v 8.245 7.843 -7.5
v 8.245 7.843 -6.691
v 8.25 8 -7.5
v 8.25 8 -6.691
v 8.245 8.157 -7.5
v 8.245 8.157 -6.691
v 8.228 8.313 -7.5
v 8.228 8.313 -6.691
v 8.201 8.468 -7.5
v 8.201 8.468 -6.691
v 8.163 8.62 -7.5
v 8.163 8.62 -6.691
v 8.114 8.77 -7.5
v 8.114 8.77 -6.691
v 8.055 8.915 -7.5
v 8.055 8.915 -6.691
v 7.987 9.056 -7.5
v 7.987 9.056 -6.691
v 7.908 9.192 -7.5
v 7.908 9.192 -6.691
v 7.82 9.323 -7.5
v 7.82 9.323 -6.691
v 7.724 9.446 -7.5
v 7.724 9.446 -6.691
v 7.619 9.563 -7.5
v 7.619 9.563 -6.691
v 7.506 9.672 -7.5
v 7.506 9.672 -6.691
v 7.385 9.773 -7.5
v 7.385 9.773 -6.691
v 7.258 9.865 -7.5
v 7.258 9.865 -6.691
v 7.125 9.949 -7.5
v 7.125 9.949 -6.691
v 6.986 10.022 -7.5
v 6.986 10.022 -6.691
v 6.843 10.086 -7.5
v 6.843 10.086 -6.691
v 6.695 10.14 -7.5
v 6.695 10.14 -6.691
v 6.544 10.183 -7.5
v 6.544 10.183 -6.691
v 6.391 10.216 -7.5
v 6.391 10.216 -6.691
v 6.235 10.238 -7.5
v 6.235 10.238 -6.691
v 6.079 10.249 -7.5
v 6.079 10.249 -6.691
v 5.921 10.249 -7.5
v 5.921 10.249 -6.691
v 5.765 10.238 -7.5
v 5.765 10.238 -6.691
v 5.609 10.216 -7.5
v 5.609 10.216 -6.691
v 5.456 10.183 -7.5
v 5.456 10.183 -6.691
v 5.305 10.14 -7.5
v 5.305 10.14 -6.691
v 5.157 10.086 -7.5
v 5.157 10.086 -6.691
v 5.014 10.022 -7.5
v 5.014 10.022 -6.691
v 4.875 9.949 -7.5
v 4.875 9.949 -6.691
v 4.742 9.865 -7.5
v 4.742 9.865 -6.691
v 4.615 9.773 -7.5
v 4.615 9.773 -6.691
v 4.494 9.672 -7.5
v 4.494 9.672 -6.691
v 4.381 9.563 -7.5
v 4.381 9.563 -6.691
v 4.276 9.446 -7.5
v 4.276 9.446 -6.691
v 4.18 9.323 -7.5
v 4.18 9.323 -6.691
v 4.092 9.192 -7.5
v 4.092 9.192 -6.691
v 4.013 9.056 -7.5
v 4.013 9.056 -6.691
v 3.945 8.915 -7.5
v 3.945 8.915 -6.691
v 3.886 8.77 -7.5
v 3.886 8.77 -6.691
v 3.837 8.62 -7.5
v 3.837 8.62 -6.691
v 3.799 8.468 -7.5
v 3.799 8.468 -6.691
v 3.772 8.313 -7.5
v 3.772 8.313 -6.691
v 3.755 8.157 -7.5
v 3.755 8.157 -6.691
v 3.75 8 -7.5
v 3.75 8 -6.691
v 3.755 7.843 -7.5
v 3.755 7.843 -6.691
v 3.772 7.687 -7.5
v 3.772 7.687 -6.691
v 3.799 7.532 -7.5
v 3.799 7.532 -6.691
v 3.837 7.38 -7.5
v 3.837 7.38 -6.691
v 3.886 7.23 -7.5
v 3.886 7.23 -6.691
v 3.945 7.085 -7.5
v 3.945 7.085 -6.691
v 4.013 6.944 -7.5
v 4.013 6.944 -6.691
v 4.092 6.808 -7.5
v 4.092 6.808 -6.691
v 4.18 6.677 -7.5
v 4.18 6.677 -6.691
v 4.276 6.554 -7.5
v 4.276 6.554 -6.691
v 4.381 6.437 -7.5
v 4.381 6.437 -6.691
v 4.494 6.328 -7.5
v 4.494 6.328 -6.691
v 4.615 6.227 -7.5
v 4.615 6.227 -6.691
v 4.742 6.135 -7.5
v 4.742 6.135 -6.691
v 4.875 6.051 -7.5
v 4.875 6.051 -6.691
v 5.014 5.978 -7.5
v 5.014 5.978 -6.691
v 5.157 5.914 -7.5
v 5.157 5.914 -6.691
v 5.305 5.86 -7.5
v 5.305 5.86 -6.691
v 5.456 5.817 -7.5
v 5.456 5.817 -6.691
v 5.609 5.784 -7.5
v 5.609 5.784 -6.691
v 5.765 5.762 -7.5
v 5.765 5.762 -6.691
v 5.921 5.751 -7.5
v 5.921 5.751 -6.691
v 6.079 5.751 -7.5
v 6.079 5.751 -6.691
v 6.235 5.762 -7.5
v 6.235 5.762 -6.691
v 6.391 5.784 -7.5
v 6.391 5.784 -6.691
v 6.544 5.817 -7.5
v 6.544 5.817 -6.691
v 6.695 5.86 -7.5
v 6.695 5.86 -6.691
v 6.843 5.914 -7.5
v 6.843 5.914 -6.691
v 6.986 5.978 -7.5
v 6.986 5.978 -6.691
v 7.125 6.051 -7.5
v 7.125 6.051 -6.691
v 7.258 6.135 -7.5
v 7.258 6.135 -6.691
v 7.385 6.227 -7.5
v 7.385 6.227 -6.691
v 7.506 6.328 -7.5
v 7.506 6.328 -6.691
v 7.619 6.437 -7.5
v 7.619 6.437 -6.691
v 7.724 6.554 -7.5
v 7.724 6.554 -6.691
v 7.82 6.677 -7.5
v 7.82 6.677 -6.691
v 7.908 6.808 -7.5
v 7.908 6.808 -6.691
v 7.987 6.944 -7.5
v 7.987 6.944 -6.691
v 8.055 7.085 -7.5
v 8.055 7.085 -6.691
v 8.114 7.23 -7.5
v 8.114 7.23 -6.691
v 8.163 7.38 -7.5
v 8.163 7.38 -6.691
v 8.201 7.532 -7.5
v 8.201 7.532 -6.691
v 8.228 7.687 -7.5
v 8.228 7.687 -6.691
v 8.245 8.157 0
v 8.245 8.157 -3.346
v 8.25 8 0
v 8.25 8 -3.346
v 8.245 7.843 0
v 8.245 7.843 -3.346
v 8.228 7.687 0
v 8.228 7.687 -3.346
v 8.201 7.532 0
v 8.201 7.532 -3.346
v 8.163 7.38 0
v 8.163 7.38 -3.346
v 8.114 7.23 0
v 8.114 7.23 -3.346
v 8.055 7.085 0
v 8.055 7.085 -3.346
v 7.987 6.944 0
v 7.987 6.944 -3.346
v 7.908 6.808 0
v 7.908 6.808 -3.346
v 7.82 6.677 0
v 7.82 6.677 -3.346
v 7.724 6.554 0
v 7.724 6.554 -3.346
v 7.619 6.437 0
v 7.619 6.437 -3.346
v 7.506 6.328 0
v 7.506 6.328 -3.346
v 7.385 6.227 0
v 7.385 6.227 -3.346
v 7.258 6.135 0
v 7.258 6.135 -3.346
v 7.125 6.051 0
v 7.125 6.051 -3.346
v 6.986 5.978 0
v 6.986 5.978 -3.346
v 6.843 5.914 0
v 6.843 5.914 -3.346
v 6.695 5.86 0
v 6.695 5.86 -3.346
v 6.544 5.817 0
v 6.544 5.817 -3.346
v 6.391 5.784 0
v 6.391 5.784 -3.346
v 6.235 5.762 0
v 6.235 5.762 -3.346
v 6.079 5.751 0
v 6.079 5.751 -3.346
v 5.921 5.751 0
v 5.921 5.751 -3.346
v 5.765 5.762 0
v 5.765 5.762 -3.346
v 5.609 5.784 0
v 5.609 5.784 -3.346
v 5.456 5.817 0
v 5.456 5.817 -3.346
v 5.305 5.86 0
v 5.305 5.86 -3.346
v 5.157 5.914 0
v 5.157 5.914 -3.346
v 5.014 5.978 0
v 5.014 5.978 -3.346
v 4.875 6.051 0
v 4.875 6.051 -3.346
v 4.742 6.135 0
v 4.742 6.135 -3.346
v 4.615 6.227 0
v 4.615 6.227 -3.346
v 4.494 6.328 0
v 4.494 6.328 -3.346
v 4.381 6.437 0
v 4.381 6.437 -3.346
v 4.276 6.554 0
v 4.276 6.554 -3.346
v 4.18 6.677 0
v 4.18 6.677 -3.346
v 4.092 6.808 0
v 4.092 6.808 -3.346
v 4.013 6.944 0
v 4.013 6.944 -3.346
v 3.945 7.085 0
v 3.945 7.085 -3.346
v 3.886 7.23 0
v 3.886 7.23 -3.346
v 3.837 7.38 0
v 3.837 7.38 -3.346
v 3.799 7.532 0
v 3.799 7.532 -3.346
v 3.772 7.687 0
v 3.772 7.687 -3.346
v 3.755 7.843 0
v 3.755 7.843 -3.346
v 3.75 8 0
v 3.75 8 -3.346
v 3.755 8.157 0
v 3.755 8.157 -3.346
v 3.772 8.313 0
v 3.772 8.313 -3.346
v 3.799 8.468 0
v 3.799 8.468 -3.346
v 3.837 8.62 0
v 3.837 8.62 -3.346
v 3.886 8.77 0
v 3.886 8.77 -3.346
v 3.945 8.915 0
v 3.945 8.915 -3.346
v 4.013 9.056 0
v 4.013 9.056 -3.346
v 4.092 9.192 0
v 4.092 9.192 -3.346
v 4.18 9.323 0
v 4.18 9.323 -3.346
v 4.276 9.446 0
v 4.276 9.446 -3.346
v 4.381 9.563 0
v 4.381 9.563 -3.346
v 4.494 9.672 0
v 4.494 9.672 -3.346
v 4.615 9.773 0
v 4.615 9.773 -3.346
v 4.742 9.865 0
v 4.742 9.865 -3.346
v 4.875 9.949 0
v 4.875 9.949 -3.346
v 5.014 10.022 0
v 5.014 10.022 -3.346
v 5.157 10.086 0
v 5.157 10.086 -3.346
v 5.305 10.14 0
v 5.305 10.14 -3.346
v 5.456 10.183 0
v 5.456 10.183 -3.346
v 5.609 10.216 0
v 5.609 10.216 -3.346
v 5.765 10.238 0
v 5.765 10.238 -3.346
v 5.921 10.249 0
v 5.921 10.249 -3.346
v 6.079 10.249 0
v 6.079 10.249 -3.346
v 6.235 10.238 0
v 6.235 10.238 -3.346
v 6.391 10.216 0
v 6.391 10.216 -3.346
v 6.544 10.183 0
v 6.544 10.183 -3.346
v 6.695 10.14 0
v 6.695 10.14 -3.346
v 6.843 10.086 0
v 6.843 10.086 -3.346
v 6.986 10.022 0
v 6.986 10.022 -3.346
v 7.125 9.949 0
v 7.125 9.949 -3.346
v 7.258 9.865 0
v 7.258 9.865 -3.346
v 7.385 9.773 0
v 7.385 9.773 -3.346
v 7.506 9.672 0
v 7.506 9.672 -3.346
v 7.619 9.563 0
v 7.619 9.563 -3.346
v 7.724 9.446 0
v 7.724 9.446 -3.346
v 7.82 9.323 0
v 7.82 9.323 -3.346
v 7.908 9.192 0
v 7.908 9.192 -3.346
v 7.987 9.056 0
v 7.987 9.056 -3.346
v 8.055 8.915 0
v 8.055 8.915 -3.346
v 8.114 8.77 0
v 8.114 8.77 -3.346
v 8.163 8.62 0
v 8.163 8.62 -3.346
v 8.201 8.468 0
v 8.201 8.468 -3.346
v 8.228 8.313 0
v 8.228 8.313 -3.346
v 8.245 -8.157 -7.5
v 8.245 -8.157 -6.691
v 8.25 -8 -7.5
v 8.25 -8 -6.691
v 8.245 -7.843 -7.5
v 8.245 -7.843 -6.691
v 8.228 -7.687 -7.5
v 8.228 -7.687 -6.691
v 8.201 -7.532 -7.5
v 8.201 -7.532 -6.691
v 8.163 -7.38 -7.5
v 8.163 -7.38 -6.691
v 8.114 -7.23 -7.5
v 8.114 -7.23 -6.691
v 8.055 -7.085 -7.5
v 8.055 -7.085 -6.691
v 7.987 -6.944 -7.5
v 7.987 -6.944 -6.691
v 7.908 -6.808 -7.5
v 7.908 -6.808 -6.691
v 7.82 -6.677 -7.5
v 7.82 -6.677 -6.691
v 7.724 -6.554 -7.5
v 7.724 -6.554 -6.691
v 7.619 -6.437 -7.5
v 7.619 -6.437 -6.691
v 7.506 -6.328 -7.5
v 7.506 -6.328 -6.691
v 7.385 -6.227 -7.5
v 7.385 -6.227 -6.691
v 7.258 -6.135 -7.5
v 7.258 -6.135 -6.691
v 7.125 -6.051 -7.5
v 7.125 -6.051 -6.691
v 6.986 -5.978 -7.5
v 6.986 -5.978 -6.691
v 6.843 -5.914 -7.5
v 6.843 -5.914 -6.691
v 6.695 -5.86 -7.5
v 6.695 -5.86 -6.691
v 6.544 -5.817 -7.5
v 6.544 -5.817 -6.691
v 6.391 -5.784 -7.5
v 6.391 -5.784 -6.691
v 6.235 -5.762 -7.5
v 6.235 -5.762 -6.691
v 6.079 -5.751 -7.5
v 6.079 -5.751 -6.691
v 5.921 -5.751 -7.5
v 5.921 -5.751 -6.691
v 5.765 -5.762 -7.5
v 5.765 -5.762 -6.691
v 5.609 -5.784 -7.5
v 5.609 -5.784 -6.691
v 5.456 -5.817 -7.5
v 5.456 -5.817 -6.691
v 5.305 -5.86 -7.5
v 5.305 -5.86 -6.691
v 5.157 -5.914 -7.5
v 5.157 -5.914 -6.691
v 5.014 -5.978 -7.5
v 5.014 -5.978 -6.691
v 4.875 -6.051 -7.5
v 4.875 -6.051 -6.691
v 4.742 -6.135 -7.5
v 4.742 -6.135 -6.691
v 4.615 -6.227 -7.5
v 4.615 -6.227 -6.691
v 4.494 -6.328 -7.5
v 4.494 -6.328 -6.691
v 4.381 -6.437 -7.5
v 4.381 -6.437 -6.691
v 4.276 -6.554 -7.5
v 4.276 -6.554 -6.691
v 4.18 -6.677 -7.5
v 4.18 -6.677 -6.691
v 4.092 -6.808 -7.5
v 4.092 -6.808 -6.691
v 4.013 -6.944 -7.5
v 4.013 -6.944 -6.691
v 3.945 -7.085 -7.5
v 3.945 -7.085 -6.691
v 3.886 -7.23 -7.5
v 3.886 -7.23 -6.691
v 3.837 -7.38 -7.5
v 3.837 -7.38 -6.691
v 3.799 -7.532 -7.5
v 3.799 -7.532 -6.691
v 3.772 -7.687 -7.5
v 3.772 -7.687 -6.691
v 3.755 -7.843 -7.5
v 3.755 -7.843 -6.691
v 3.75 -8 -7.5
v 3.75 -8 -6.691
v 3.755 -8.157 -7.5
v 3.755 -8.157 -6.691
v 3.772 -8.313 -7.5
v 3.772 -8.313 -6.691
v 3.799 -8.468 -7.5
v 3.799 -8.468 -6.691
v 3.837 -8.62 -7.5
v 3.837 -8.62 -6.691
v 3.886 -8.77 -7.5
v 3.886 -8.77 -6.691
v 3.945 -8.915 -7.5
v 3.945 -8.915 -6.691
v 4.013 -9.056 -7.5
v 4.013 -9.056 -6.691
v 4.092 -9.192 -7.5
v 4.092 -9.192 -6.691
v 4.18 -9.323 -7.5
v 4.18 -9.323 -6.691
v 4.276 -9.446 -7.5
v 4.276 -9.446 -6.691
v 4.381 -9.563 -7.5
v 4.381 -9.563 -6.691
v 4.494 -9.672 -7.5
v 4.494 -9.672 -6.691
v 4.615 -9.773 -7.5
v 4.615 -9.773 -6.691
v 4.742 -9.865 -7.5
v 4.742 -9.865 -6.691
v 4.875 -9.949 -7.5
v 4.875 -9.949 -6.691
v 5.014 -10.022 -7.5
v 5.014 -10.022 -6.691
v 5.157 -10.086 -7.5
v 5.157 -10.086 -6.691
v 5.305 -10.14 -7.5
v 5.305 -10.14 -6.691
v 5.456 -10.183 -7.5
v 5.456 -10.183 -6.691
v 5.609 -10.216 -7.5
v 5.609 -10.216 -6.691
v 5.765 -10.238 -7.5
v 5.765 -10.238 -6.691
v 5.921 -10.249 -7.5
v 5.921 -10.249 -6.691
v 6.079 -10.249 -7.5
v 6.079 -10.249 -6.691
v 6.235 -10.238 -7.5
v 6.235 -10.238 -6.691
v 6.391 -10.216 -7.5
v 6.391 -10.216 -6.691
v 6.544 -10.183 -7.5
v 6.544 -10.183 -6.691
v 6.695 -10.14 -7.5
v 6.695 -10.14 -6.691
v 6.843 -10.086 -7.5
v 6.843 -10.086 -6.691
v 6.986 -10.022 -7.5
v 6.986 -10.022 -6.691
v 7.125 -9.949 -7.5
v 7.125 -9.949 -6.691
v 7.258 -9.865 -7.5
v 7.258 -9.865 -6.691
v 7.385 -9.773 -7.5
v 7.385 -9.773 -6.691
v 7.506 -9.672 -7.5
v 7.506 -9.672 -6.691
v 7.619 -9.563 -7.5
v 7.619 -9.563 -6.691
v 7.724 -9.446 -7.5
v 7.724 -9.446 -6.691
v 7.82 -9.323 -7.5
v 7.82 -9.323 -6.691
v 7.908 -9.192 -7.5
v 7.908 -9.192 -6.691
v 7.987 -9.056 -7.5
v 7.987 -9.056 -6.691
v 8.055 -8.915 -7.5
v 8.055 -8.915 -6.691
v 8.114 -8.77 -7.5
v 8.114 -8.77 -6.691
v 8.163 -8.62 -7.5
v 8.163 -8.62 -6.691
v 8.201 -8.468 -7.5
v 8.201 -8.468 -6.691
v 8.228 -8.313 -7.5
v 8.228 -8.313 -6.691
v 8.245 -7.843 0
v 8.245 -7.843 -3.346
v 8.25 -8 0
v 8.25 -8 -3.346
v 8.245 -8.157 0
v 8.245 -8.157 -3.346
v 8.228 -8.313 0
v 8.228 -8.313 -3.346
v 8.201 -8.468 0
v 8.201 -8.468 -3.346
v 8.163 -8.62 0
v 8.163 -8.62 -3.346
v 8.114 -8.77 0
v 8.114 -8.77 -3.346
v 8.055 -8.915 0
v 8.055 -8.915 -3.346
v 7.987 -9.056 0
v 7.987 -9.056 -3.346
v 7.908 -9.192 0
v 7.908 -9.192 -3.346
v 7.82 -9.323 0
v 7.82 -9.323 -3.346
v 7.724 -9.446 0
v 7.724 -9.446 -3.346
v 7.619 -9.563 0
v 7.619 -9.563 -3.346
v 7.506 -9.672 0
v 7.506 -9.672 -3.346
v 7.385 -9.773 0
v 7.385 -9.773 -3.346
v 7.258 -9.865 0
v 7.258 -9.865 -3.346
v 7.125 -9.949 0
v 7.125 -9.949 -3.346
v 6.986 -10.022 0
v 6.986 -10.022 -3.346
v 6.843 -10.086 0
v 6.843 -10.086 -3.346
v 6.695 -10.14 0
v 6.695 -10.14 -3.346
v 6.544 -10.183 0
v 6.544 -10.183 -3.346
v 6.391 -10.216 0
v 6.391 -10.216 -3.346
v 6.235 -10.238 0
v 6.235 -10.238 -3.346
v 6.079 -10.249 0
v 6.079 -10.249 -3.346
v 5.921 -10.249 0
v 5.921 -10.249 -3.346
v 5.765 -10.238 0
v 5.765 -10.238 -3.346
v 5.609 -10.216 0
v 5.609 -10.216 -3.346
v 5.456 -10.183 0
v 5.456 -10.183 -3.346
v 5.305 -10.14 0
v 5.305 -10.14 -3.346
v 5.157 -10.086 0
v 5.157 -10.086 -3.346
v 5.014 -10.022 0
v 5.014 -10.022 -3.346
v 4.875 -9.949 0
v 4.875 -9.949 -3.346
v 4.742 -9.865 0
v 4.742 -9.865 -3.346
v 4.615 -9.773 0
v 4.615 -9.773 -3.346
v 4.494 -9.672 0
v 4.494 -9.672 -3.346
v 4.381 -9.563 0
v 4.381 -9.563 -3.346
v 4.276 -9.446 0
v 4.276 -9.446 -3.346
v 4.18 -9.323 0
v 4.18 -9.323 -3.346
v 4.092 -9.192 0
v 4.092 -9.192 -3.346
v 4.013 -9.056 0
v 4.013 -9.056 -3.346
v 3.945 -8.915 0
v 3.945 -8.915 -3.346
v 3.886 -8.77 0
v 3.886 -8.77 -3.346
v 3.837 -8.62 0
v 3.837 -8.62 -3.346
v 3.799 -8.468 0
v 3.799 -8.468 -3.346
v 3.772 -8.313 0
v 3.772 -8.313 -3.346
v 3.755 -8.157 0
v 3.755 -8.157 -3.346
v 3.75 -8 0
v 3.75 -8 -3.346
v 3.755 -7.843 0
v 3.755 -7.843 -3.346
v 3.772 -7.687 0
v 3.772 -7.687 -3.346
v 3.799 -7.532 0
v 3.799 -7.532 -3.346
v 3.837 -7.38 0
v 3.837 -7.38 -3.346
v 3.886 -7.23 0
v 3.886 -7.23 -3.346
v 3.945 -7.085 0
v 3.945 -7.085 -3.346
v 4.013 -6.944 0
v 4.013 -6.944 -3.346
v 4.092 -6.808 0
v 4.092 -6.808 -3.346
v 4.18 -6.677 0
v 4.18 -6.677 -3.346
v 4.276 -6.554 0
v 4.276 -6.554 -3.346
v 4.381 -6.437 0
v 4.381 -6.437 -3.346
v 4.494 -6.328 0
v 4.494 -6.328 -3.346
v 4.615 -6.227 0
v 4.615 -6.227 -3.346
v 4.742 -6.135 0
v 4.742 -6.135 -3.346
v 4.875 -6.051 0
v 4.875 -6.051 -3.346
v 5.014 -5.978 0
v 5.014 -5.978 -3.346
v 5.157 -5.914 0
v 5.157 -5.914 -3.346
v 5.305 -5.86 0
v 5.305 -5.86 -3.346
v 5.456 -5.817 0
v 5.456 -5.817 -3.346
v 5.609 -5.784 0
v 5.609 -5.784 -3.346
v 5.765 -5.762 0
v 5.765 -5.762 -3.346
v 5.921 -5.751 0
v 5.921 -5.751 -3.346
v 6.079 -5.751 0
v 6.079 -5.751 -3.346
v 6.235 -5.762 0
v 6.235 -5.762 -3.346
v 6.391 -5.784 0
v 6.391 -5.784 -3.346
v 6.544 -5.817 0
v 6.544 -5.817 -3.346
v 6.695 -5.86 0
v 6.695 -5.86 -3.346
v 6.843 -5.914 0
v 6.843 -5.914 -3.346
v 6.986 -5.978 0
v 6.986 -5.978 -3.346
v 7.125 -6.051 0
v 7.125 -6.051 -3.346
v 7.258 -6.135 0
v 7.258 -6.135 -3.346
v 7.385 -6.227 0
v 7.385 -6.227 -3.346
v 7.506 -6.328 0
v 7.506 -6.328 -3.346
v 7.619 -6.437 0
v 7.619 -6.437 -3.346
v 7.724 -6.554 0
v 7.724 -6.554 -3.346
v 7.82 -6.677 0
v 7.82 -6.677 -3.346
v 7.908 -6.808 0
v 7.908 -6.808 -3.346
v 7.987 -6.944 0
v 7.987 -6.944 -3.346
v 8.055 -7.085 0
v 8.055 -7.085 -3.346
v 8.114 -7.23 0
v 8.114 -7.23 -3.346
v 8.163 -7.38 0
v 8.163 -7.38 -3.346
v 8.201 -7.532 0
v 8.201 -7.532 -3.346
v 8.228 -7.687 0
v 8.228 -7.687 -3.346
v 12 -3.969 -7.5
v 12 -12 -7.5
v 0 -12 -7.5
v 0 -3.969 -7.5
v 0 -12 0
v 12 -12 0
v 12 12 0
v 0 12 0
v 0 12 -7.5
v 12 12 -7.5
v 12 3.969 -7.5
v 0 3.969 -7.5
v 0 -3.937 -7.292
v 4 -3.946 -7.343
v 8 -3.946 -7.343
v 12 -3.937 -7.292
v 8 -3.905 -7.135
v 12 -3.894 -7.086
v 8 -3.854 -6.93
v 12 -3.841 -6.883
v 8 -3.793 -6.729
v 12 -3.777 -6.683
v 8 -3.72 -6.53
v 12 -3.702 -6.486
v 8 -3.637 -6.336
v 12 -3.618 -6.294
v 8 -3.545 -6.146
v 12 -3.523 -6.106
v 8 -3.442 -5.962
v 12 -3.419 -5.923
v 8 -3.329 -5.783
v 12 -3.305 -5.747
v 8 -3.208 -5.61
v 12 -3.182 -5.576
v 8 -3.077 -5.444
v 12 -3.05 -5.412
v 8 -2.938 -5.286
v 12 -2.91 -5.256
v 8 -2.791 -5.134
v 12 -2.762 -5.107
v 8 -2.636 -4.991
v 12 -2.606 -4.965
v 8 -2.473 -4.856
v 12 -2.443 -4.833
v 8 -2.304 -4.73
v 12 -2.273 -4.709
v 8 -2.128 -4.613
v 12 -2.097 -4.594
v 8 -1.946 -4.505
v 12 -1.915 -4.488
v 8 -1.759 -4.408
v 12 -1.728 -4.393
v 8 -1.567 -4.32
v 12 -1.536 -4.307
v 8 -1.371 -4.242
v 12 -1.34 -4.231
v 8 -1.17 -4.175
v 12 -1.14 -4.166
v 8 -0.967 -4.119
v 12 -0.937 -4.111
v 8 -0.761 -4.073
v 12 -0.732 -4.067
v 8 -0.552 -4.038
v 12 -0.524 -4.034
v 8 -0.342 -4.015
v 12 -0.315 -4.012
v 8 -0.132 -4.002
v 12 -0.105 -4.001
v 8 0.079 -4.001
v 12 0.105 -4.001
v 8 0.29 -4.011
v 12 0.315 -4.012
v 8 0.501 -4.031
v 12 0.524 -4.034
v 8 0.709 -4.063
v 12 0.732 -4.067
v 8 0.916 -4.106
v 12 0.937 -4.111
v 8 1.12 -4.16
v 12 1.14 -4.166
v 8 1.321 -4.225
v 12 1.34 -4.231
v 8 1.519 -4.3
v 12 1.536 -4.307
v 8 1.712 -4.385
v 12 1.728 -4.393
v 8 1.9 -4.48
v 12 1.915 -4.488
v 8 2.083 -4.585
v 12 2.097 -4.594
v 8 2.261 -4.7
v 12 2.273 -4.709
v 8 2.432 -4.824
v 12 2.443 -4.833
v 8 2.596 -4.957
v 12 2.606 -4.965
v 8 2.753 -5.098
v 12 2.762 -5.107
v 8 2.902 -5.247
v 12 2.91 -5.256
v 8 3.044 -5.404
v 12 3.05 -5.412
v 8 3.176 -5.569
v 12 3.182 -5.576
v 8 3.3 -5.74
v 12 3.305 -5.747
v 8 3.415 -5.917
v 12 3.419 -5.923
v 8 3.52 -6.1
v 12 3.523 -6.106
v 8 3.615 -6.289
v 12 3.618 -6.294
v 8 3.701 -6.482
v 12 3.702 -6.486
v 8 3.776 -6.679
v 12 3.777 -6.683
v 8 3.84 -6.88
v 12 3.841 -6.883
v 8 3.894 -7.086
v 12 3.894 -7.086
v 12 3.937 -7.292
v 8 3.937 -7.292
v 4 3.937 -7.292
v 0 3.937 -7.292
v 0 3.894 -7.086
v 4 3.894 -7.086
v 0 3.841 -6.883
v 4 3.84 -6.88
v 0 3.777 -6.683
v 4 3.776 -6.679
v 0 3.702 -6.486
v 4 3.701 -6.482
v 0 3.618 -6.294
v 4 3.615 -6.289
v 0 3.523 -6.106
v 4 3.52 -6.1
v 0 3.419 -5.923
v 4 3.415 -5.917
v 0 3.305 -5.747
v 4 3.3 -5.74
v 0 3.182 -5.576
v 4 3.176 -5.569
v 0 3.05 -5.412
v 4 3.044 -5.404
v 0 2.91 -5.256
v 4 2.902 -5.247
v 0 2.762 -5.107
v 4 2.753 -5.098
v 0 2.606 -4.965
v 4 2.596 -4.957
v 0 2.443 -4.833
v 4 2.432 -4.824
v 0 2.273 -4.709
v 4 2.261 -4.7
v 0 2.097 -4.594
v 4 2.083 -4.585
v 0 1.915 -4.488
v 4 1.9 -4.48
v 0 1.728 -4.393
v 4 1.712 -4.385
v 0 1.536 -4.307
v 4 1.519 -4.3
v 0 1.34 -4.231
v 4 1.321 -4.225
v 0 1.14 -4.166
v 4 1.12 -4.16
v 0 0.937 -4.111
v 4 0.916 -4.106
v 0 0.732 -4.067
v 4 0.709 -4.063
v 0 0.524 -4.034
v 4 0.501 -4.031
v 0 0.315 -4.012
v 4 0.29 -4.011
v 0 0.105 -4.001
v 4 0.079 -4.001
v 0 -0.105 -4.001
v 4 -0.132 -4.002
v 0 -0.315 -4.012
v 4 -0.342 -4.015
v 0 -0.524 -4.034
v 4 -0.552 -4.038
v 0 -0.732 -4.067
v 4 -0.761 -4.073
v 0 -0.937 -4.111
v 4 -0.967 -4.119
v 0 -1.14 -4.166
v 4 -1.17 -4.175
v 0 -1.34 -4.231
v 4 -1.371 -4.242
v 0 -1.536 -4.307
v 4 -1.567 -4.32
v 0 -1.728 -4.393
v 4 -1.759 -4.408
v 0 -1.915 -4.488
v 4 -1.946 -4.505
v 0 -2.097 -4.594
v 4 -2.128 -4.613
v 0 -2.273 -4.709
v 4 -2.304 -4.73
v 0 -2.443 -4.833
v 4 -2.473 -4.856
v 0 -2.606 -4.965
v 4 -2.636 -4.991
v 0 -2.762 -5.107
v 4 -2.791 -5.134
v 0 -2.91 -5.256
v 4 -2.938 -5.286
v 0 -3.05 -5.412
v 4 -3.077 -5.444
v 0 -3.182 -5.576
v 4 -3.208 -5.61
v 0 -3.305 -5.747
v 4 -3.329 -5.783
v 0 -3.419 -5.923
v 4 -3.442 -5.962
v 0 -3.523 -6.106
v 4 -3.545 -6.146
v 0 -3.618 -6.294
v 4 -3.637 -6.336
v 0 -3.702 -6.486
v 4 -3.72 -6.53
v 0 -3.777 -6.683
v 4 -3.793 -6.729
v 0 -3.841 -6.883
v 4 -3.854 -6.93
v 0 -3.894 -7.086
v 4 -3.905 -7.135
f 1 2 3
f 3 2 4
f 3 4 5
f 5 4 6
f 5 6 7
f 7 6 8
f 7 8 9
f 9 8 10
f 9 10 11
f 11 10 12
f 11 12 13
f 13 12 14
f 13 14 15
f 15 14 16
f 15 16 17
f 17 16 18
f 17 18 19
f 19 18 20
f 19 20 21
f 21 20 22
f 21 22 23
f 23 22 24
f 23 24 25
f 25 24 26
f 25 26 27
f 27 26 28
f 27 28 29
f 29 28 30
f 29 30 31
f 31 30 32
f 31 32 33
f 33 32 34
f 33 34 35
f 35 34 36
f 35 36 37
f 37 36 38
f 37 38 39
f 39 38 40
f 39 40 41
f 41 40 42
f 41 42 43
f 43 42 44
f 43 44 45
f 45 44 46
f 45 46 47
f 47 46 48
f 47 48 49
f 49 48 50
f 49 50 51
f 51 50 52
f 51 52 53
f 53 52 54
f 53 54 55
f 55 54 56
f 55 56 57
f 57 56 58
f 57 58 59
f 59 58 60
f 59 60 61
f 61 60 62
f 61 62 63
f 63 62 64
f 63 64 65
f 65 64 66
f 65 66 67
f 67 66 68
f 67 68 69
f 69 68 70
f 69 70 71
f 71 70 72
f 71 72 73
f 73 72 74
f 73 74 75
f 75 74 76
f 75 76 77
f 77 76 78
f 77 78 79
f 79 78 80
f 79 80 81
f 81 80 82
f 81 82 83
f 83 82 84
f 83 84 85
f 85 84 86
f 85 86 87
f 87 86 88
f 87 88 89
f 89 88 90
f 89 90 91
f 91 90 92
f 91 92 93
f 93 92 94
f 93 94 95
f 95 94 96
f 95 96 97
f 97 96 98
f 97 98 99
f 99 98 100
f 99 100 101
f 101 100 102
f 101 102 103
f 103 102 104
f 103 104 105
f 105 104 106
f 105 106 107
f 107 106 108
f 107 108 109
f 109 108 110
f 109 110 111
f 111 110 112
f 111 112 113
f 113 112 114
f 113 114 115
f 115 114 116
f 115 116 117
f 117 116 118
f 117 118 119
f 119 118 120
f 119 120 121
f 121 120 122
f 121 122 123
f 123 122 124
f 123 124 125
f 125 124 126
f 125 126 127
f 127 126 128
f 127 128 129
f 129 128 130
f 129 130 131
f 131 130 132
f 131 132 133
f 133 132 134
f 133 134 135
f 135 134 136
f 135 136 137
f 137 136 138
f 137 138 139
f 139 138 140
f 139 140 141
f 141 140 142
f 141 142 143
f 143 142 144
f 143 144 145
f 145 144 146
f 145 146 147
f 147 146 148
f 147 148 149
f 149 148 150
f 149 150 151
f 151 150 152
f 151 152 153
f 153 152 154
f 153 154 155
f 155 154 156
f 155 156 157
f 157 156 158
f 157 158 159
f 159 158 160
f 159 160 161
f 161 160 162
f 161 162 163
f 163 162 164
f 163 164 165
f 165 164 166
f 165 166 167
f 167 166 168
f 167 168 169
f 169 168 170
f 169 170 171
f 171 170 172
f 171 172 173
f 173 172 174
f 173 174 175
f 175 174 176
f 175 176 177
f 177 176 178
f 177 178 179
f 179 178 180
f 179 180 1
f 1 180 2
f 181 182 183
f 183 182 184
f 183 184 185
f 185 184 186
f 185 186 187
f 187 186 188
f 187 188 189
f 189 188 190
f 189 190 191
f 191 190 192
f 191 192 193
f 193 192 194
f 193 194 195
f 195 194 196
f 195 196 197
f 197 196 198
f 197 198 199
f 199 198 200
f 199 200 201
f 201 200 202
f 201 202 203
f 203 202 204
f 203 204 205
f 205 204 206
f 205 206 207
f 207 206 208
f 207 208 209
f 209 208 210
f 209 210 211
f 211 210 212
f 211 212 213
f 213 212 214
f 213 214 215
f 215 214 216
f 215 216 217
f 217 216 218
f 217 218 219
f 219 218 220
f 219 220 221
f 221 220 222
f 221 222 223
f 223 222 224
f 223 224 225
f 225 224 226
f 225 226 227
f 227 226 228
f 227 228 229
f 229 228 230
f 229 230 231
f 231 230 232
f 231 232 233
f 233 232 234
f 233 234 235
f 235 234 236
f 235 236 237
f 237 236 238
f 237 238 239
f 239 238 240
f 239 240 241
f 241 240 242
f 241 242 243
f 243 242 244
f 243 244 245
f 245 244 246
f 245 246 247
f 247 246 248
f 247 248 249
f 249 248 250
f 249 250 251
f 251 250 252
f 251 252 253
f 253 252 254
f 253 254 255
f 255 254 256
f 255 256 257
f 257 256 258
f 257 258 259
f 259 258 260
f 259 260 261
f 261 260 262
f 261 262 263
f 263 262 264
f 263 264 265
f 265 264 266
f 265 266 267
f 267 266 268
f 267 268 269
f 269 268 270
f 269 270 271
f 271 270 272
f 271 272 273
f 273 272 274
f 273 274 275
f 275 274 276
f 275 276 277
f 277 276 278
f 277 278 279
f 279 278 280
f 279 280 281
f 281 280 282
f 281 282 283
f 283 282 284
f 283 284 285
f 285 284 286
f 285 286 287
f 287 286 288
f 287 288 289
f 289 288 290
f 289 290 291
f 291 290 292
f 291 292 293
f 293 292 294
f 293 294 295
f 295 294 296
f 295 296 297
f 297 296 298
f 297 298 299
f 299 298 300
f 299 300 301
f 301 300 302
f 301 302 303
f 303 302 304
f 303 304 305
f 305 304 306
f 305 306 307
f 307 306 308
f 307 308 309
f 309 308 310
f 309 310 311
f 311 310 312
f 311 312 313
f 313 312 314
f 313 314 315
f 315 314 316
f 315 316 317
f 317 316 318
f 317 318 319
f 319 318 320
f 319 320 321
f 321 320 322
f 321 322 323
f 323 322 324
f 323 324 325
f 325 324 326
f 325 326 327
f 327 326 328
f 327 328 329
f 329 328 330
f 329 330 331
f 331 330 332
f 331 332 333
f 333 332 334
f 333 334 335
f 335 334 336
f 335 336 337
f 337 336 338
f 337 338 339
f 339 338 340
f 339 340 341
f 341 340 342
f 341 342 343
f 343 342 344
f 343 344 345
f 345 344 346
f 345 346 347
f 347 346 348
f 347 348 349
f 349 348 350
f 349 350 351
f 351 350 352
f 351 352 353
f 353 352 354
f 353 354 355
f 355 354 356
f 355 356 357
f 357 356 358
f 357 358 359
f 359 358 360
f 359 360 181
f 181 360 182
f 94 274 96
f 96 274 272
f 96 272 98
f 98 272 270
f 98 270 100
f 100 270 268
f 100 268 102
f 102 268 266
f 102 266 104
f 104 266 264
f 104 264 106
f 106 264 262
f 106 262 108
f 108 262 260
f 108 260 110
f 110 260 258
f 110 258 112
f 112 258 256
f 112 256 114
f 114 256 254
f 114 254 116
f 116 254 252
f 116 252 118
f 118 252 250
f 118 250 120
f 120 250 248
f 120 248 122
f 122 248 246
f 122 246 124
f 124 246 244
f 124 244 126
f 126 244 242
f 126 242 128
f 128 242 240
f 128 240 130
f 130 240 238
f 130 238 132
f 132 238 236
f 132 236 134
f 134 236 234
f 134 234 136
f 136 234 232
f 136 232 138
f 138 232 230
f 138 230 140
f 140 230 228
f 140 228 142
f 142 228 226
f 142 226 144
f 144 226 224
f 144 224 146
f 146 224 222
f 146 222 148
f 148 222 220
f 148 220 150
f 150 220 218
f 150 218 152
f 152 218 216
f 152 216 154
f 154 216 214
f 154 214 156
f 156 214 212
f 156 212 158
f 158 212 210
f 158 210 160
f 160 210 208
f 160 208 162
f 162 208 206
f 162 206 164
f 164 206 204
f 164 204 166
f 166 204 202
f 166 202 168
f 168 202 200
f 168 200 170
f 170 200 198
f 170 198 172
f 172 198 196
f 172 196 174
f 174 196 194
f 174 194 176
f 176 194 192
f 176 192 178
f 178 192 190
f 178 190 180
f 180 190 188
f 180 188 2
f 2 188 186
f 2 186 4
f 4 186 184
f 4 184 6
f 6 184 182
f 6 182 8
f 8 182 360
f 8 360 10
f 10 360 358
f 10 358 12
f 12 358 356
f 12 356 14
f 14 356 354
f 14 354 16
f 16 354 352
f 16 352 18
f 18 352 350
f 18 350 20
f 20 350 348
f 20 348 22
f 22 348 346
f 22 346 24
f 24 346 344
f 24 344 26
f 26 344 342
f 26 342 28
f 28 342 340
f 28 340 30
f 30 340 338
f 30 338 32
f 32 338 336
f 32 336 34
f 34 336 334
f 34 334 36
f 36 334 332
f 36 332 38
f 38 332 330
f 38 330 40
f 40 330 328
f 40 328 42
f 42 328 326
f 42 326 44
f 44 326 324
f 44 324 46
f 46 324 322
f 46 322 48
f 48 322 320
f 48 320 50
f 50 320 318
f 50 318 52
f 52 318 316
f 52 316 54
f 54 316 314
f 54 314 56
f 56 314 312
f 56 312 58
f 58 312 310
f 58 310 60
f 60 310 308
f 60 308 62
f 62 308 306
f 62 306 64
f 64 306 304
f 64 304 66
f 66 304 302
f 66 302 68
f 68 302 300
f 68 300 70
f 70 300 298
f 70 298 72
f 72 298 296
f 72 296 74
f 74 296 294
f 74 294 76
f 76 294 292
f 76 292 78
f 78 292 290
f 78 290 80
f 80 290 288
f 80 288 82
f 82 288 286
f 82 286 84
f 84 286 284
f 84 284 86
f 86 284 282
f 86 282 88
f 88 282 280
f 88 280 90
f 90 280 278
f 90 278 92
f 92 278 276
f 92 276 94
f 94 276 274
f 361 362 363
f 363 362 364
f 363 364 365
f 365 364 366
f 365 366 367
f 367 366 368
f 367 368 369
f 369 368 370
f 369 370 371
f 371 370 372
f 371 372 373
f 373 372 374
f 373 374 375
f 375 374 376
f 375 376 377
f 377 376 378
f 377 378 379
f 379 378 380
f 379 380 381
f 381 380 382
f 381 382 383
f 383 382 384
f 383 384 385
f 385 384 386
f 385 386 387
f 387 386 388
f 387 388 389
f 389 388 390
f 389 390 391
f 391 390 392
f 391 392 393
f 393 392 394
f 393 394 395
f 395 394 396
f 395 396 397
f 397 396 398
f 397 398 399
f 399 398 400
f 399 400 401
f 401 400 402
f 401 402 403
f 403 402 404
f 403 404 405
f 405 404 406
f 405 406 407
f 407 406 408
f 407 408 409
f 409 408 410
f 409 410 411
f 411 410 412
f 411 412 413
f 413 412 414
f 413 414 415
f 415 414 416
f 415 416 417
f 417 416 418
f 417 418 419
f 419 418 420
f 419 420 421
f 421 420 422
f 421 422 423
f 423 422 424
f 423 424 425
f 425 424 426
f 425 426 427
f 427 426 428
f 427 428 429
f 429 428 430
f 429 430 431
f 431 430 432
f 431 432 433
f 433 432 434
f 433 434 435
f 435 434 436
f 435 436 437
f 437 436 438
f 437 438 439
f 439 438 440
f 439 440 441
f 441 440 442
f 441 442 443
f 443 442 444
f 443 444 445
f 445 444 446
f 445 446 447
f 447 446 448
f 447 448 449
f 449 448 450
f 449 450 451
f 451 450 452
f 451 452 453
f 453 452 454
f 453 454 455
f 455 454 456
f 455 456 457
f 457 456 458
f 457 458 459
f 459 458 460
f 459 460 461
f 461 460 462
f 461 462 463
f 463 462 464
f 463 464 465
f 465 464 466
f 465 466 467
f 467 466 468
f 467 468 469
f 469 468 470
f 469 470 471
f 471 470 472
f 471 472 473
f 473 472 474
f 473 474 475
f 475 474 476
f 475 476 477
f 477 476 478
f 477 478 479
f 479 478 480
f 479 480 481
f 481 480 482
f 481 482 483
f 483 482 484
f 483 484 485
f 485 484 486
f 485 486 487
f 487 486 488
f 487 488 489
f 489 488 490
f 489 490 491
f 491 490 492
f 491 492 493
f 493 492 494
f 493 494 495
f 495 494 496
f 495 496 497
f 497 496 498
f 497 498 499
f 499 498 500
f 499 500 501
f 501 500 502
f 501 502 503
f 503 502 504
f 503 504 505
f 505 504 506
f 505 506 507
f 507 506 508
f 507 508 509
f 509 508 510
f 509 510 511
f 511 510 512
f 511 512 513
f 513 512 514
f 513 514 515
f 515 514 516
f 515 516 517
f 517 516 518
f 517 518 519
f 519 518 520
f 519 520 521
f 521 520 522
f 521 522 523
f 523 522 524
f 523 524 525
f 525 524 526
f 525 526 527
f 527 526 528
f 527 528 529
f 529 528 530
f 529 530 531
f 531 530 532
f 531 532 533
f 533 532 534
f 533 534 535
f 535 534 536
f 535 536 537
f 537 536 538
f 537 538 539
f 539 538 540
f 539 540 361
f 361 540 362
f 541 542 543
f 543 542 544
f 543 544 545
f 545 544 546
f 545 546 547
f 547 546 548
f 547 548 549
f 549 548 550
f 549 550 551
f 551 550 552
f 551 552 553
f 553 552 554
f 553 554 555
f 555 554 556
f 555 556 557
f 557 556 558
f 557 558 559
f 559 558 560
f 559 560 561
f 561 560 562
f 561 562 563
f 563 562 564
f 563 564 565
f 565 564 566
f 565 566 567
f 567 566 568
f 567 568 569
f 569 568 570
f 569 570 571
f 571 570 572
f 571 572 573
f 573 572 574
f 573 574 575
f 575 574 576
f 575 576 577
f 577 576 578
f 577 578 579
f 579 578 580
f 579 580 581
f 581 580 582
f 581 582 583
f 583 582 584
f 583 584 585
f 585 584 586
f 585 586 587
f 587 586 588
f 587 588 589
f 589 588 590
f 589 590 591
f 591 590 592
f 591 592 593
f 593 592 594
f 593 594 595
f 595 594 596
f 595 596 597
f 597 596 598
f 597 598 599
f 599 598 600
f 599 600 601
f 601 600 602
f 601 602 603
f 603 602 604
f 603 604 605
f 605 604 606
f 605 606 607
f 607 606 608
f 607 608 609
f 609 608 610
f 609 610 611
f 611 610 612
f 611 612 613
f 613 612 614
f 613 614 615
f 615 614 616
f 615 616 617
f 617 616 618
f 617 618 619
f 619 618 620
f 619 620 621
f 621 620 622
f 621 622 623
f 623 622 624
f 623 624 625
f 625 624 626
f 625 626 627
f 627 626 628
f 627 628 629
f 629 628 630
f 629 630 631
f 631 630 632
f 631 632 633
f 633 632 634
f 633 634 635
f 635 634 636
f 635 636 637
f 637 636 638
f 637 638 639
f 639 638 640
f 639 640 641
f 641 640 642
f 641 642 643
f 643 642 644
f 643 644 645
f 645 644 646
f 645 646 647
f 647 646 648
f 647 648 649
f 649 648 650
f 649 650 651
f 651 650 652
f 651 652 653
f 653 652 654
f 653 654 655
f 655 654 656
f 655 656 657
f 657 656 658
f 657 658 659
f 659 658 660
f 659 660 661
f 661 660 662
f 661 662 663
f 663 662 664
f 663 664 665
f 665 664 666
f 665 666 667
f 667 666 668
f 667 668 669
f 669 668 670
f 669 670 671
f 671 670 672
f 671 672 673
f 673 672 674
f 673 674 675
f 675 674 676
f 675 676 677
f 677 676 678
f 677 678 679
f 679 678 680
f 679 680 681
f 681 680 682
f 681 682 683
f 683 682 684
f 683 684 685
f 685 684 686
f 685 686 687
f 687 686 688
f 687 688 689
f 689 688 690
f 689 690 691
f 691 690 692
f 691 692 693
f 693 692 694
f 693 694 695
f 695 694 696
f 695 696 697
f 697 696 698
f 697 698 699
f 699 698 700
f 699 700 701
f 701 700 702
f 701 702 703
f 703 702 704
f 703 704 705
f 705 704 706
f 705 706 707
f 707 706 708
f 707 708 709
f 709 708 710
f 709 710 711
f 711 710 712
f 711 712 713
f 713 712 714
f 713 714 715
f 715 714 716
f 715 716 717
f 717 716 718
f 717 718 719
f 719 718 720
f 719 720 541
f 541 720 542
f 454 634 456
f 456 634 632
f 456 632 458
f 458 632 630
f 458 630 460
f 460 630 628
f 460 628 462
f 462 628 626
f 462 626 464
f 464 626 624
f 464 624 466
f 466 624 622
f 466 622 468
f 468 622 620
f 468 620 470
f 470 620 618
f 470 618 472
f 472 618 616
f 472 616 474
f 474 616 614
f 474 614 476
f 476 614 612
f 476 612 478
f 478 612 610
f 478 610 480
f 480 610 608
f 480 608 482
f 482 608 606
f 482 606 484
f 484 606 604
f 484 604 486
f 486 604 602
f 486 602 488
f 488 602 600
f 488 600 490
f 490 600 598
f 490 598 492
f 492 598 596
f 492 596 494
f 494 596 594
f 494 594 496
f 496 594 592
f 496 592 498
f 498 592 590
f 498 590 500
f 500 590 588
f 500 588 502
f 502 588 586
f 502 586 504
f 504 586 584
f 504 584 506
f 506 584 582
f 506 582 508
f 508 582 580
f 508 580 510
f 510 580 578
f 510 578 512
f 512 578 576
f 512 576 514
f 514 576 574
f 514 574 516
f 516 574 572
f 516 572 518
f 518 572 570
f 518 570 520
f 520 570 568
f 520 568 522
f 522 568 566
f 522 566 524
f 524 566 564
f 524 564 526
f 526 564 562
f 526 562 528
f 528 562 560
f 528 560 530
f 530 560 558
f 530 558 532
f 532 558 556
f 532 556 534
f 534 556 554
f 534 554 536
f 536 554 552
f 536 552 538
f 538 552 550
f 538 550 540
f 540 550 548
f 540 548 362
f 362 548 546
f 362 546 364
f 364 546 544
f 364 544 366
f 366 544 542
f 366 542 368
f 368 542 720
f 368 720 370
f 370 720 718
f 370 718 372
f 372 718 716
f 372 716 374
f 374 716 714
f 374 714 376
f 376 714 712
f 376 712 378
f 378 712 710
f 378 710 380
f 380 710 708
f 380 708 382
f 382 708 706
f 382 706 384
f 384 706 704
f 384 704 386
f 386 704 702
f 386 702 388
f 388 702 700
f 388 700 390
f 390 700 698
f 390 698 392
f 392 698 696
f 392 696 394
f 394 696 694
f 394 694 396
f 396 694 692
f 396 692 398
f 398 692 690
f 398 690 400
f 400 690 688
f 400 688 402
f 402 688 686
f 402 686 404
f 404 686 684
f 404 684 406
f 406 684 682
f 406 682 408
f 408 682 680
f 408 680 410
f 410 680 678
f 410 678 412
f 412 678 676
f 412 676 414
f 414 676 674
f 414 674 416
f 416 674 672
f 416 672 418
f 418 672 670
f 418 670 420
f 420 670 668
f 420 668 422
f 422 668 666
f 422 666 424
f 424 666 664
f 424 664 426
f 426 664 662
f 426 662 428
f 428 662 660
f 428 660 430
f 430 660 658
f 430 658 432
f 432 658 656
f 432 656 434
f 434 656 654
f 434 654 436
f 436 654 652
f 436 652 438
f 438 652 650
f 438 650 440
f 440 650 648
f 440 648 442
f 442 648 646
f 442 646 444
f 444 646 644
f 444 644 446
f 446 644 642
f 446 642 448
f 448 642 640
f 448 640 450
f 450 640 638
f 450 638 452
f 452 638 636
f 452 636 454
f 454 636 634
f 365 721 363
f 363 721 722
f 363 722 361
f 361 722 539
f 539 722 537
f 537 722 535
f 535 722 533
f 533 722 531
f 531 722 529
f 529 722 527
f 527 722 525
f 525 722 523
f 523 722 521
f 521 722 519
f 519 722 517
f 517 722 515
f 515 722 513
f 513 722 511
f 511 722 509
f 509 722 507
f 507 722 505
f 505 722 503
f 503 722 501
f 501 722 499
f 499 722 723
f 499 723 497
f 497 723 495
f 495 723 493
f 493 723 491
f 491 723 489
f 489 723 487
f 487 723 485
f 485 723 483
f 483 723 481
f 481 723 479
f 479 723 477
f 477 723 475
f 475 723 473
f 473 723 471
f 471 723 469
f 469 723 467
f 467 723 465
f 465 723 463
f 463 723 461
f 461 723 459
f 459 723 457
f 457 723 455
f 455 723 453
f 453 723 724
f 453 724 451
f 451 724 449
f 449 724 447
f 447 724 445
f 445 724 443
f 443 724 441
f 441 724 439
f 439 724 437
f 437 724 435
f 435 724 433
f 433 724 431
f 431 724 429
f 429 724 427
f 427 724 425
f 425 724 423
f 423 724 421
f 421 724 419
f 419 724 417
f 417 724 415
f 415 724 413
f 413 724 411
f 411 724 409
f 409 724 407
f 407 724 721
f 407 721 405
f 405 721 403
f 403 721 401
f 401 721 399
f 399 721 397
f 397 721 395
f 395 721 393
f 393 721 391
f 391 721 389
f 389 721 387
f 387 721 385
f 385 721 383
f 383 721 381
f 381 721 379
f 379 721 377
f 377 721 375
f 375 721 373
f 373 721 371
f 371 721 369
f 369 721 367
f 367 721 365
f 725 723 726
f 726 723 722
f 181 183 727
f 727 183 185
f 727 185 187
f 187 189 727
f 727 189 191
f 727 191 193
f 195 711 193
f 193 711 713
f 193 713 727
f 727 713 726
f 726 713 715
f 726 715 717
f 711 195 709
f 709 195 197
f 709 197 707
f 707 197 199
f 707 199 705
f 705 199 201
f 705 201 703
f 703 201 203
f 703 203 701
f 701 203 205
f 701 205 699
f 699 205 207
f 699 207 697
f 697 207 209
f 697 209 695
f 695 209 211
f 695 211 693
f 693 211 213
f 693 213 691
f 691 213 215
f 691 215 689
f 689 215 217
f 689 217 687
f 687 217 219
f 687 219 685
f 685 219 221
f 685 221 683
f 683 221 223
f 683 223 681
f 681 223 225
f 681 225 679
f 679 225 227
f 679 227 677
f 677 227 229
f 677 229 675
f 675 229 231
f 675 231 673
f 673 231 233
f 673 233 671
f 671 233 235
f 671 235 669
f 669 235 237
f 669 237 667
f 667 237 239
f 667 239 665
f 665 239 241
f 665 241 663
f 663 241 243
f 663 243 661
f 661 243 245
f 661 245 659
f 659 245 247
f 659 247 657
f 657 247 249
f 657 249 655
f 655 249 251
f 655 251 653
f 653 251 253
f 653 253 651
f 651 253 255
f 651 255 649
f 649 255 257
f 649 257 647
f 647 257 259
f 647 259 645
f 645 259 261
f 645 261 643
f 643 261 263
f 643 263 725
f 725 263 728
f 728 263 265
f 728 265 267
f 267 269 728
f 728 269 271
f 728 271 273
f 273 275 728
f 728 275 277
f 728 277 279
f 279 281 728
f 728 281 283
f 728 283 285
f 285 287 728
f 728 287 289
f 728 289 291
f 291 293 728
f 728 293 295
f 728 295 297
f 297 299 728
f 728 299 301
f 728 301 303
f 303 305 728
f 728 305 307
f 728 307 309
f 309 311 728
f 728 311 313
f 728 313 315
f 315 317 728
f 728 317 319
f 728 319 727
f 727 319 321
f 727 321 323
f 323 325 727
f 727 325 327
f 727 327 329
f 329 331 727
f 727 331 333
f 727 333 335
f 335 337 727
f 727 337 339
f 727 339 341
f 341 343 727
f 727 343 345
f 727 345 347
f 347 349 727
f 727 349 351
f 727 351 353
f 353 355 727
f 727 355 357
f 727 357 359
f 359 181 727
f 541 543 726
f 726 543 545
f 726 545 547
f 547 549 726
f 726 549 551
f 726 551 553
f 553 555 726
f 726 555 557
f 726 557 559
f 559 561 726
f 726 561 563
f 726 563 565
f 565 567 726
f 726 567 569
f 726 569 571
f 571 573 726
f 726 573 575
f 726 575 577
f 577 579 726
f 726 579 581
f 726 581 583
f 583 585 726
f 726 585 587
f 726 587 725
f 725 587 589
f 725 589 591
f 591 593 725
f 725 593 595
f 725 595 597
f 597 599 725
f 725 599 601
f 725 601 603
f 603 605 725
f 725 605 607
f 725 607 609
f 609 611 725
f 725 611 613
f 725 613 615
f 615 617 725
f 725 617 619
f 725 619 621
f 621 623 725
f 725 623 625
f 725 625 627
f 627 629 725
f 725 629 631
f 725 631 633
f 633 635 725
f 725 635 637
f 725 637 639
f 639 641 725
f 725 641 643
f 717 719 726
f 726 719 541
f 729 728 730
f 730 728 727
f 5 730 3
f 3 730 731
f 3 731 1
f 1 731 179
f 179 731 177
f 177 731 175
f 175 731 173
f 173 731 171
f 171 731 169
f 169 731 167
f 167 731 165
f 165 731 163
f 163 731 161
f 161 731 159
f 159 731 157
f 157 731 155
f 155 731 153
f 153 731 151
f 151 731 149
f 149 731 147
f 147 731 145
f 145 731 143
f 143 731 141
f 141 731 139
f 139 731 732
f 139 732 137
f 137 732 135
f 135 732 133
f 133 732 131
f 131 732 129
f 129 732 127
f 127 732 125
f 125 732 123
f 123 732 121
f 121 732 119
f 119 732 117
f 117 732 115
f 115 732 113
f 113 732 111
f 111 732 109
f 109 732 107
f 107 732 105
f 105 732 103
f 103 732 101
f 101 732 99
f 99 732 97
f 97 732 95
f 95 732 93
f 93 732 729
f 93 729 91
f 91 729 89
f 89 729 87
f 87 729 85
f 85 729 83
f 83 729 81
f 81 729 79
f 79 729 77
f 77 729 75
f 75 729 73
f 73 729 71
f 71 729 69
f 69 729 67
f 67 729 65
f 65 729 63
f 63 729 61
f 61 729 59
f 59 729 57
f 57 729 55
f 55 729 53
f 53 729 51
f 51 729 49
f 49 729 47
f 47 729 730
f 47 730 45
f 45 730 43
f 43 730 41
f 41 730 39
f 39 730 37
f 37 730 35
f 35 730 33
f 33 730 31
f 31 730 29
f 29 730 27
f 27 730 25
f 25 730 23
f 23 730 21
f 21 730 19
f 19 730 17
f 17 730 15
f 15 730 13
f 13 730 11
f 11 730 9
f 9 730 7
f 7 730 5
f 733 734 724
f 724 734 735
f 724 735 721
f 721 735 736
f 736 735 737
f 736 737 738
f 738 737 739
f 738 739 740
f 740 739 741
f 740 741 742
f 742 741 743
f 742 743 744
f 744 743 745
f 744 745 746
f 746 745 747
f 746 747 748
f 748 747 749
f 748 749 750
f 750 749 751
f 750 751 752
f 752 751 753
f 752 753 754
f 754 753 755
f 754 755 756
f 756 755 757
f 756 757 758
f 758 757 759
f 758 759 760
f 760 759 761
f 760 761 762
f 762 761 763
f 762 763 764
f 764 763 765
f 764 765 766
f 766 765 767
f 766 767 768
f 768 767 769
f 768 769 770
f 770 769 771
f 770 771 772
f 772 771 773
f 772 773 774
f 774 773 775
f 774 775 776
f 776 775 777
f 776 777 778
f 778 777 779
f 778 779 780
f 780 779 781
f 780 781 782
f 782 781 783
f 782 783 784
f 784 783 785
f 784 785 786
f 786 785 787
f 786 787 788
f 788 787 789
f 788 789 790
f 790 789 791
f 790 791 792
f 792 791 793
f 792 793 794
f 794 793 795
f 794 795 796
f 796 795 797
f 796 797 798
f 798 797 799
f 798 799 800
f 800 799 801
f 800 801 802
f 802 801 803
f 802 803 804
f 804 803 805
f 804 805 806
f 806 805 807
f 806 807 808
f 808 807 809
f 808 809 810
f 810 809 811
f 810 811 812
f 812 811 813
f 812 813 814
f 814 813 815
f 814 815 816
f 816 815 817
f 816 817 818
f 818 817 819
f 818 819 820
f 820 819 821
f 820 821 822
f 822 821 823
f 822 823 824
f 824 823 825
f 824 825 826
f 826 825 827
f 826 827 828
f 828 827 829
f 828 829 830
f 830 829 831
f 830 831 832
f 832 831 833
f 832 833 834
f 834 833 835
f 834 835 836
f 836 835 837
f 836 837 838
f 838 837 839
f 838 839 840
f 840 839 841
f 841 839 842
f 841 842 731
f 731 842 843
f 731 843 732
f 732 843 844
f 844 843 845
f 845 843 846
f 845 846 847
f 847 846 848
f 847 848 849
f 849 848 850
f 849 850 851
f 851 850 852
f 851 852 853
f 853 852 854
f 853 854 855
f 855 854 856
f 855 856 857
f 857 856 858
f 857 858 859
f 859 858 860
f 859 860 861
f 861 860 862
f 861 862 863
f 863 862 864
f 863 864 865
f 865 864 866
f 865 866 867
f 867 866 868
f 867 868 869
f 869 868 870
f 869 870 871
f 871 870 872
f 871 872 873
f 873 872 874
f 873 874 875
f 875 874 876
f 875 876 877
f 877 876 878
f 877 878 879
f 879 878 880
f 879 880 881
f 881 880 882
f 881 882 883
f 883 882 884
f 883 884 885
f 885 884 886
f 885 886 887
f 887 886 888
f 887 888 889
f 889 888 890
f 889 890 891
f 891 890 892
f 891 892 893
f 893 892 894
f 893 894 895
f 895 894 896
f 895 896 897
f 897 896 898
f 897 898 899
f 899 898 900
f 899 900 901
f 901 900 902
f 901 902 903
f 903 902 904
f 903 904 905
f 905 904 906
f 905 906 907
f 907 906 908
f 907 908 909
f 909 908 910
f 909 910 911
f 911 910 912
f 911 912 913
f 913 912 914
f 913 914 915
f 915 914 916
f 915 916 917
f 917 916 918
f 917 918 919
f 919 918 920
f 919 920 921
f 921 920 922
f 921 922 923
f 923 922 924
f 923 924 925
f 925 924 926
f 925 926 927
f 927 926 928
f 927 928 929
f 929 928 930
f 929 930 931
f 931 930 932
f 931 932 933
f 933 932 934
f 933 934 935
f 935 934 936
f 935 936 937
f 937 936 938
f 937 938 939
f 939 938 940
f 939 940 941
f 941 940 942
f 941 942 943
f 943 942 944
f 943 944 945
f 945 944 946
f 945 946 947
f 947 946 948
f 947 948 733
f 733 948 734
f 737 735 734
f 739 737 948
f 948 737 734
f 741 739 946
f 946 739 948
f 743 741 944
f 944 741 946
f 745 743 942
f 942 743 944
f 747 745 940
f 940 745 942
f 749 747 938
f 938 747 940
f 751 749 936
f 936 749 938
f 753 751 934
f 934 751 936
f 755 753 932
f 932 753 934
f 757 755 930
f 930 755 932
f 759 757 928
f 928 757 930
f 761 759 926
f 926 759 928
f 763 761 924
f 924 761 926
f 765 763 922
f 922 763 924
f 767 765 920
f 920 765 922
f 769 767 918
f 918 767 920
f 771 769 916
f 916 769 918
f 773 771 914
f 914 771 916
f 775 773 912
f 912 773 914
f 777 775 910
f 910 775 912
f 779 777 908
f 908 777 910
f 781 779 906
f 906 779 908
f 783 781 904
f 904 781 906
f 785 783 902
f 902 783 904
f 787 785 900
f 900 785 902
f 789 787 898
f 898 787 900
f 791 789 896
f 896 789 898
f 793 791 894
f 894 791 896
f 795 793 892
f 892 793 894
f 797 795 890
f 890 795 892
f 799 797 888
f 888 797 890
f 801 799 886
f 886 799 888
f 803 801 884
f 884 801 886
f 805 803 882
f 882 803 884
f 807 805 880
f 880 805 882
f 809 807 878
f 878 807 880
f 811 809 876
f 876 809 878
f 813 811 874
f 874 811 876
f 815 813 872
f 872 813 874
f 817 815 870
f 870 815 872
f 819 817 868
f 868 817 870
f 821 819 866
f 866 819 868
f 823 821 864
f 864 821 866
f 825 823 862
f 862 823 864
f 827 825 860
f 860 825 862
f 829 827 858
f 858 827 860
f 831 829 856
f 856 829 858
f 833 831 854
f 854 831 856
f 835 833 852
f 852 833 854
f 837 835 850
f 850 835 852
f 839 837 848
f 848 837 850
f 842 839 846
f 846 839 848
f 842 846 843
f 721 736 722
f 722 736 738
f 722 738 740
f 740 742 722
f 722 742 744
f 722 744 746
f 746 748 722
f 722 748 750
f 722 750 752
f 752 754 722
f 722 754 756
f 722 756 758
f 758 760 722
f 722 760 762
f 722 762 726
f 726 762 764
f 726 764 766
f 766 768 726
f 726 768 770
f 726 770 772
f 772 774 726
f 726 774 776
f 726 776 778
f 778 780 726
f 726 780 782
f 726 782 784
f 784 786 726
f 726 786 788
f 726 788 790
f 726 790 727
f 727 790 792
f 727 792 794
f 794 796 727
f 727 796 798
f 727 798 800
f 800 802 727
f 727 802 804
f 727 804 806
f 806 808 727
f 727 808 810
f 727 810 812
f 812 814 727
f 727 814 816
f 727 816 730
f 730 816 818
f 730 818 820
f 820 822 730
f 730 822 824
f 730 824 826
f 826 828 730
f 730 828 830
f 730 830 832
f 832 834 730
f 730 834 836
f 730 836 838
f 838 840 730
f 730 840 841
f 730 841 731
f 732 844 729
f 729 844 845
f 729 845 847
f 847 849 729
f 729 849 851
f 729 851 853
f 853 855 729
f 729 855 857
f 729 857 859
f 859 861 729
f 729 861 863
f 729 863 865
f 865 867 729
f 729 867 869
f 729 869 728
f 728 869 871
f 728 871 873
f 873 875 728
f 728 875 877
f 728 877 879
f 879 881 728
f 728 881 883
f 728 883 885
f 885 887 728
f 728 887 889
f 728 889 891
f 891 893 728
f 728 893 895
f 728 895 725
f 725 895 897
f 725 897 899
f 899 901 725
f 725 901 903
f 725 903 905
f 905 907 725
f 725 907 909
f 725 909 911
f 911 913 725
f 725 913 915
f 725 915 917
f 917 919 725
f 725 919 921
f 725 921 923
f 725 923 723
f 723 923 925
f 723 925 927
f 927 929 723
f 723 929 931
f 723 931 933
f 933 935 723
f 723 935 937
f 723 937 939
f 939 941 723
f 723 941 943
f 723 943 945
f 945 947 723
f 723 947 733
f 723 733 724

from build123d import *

# Parameters (mm, degrees)
BOSS_EXTRUDE1_DEPTH = 12
SKETCH2_R           = 2.25
CUT_EXTRUDE1_DEPTH  = 19.761663039
SKETCH3_W           = 12
SKETCH3_H           = 24
CUT_EXTRUDE2_DEPTH  = 0.5


with BuildPart() as part:
    # Sketch1 → Boss-Extrude1 (new body)
    with BuildSketch(Plane(origin=(0, 0, 0), x_dir=(0, 0, -1), z_dir=(1, 0, 0))):
        with BuildLine():
            Line((8, -4), (8, -12))
            Line((8, -12), (0, -12))
            Line((0, -12), (0, 12))
            Line((0, 12), (8, 12))
            Line((8, 12), (8, 4))
            ThreePointArc((8, 4), (4, 0), (8, -4))
        make_face()
    extrude(amount=BOSS_EXTRUDE1_DEPTH)

    # Sketch2 → Cut-Extrude1 (cut, through all)
    with BuildSketch(Plane.XY):
        with Locations((6, 8)):
            Circle(SKETCH2_R)
        with Locations((6, -8)):
            Circle(SKETCH2_R)
    extrude(amount=-CUT_EXTRUDE1_DEPTH, mode=Mode.SUBTRACT)

    # Sketch3 → Cut-Extrude2 (cut)
    with BuildSketch(Plane(origin=(0, 0, -8), x_dir=(-1, 0, 0), z_dir=(0, 0, -1))):
        with Locations((-6, 0)):
            Rectangle(SKETCH3_W, SKETCH3_H)
    extrude(amount=-CUT_EXTRUDE2_DEPTH, mode=Mode.SUBTRACT)


solid = part.part
